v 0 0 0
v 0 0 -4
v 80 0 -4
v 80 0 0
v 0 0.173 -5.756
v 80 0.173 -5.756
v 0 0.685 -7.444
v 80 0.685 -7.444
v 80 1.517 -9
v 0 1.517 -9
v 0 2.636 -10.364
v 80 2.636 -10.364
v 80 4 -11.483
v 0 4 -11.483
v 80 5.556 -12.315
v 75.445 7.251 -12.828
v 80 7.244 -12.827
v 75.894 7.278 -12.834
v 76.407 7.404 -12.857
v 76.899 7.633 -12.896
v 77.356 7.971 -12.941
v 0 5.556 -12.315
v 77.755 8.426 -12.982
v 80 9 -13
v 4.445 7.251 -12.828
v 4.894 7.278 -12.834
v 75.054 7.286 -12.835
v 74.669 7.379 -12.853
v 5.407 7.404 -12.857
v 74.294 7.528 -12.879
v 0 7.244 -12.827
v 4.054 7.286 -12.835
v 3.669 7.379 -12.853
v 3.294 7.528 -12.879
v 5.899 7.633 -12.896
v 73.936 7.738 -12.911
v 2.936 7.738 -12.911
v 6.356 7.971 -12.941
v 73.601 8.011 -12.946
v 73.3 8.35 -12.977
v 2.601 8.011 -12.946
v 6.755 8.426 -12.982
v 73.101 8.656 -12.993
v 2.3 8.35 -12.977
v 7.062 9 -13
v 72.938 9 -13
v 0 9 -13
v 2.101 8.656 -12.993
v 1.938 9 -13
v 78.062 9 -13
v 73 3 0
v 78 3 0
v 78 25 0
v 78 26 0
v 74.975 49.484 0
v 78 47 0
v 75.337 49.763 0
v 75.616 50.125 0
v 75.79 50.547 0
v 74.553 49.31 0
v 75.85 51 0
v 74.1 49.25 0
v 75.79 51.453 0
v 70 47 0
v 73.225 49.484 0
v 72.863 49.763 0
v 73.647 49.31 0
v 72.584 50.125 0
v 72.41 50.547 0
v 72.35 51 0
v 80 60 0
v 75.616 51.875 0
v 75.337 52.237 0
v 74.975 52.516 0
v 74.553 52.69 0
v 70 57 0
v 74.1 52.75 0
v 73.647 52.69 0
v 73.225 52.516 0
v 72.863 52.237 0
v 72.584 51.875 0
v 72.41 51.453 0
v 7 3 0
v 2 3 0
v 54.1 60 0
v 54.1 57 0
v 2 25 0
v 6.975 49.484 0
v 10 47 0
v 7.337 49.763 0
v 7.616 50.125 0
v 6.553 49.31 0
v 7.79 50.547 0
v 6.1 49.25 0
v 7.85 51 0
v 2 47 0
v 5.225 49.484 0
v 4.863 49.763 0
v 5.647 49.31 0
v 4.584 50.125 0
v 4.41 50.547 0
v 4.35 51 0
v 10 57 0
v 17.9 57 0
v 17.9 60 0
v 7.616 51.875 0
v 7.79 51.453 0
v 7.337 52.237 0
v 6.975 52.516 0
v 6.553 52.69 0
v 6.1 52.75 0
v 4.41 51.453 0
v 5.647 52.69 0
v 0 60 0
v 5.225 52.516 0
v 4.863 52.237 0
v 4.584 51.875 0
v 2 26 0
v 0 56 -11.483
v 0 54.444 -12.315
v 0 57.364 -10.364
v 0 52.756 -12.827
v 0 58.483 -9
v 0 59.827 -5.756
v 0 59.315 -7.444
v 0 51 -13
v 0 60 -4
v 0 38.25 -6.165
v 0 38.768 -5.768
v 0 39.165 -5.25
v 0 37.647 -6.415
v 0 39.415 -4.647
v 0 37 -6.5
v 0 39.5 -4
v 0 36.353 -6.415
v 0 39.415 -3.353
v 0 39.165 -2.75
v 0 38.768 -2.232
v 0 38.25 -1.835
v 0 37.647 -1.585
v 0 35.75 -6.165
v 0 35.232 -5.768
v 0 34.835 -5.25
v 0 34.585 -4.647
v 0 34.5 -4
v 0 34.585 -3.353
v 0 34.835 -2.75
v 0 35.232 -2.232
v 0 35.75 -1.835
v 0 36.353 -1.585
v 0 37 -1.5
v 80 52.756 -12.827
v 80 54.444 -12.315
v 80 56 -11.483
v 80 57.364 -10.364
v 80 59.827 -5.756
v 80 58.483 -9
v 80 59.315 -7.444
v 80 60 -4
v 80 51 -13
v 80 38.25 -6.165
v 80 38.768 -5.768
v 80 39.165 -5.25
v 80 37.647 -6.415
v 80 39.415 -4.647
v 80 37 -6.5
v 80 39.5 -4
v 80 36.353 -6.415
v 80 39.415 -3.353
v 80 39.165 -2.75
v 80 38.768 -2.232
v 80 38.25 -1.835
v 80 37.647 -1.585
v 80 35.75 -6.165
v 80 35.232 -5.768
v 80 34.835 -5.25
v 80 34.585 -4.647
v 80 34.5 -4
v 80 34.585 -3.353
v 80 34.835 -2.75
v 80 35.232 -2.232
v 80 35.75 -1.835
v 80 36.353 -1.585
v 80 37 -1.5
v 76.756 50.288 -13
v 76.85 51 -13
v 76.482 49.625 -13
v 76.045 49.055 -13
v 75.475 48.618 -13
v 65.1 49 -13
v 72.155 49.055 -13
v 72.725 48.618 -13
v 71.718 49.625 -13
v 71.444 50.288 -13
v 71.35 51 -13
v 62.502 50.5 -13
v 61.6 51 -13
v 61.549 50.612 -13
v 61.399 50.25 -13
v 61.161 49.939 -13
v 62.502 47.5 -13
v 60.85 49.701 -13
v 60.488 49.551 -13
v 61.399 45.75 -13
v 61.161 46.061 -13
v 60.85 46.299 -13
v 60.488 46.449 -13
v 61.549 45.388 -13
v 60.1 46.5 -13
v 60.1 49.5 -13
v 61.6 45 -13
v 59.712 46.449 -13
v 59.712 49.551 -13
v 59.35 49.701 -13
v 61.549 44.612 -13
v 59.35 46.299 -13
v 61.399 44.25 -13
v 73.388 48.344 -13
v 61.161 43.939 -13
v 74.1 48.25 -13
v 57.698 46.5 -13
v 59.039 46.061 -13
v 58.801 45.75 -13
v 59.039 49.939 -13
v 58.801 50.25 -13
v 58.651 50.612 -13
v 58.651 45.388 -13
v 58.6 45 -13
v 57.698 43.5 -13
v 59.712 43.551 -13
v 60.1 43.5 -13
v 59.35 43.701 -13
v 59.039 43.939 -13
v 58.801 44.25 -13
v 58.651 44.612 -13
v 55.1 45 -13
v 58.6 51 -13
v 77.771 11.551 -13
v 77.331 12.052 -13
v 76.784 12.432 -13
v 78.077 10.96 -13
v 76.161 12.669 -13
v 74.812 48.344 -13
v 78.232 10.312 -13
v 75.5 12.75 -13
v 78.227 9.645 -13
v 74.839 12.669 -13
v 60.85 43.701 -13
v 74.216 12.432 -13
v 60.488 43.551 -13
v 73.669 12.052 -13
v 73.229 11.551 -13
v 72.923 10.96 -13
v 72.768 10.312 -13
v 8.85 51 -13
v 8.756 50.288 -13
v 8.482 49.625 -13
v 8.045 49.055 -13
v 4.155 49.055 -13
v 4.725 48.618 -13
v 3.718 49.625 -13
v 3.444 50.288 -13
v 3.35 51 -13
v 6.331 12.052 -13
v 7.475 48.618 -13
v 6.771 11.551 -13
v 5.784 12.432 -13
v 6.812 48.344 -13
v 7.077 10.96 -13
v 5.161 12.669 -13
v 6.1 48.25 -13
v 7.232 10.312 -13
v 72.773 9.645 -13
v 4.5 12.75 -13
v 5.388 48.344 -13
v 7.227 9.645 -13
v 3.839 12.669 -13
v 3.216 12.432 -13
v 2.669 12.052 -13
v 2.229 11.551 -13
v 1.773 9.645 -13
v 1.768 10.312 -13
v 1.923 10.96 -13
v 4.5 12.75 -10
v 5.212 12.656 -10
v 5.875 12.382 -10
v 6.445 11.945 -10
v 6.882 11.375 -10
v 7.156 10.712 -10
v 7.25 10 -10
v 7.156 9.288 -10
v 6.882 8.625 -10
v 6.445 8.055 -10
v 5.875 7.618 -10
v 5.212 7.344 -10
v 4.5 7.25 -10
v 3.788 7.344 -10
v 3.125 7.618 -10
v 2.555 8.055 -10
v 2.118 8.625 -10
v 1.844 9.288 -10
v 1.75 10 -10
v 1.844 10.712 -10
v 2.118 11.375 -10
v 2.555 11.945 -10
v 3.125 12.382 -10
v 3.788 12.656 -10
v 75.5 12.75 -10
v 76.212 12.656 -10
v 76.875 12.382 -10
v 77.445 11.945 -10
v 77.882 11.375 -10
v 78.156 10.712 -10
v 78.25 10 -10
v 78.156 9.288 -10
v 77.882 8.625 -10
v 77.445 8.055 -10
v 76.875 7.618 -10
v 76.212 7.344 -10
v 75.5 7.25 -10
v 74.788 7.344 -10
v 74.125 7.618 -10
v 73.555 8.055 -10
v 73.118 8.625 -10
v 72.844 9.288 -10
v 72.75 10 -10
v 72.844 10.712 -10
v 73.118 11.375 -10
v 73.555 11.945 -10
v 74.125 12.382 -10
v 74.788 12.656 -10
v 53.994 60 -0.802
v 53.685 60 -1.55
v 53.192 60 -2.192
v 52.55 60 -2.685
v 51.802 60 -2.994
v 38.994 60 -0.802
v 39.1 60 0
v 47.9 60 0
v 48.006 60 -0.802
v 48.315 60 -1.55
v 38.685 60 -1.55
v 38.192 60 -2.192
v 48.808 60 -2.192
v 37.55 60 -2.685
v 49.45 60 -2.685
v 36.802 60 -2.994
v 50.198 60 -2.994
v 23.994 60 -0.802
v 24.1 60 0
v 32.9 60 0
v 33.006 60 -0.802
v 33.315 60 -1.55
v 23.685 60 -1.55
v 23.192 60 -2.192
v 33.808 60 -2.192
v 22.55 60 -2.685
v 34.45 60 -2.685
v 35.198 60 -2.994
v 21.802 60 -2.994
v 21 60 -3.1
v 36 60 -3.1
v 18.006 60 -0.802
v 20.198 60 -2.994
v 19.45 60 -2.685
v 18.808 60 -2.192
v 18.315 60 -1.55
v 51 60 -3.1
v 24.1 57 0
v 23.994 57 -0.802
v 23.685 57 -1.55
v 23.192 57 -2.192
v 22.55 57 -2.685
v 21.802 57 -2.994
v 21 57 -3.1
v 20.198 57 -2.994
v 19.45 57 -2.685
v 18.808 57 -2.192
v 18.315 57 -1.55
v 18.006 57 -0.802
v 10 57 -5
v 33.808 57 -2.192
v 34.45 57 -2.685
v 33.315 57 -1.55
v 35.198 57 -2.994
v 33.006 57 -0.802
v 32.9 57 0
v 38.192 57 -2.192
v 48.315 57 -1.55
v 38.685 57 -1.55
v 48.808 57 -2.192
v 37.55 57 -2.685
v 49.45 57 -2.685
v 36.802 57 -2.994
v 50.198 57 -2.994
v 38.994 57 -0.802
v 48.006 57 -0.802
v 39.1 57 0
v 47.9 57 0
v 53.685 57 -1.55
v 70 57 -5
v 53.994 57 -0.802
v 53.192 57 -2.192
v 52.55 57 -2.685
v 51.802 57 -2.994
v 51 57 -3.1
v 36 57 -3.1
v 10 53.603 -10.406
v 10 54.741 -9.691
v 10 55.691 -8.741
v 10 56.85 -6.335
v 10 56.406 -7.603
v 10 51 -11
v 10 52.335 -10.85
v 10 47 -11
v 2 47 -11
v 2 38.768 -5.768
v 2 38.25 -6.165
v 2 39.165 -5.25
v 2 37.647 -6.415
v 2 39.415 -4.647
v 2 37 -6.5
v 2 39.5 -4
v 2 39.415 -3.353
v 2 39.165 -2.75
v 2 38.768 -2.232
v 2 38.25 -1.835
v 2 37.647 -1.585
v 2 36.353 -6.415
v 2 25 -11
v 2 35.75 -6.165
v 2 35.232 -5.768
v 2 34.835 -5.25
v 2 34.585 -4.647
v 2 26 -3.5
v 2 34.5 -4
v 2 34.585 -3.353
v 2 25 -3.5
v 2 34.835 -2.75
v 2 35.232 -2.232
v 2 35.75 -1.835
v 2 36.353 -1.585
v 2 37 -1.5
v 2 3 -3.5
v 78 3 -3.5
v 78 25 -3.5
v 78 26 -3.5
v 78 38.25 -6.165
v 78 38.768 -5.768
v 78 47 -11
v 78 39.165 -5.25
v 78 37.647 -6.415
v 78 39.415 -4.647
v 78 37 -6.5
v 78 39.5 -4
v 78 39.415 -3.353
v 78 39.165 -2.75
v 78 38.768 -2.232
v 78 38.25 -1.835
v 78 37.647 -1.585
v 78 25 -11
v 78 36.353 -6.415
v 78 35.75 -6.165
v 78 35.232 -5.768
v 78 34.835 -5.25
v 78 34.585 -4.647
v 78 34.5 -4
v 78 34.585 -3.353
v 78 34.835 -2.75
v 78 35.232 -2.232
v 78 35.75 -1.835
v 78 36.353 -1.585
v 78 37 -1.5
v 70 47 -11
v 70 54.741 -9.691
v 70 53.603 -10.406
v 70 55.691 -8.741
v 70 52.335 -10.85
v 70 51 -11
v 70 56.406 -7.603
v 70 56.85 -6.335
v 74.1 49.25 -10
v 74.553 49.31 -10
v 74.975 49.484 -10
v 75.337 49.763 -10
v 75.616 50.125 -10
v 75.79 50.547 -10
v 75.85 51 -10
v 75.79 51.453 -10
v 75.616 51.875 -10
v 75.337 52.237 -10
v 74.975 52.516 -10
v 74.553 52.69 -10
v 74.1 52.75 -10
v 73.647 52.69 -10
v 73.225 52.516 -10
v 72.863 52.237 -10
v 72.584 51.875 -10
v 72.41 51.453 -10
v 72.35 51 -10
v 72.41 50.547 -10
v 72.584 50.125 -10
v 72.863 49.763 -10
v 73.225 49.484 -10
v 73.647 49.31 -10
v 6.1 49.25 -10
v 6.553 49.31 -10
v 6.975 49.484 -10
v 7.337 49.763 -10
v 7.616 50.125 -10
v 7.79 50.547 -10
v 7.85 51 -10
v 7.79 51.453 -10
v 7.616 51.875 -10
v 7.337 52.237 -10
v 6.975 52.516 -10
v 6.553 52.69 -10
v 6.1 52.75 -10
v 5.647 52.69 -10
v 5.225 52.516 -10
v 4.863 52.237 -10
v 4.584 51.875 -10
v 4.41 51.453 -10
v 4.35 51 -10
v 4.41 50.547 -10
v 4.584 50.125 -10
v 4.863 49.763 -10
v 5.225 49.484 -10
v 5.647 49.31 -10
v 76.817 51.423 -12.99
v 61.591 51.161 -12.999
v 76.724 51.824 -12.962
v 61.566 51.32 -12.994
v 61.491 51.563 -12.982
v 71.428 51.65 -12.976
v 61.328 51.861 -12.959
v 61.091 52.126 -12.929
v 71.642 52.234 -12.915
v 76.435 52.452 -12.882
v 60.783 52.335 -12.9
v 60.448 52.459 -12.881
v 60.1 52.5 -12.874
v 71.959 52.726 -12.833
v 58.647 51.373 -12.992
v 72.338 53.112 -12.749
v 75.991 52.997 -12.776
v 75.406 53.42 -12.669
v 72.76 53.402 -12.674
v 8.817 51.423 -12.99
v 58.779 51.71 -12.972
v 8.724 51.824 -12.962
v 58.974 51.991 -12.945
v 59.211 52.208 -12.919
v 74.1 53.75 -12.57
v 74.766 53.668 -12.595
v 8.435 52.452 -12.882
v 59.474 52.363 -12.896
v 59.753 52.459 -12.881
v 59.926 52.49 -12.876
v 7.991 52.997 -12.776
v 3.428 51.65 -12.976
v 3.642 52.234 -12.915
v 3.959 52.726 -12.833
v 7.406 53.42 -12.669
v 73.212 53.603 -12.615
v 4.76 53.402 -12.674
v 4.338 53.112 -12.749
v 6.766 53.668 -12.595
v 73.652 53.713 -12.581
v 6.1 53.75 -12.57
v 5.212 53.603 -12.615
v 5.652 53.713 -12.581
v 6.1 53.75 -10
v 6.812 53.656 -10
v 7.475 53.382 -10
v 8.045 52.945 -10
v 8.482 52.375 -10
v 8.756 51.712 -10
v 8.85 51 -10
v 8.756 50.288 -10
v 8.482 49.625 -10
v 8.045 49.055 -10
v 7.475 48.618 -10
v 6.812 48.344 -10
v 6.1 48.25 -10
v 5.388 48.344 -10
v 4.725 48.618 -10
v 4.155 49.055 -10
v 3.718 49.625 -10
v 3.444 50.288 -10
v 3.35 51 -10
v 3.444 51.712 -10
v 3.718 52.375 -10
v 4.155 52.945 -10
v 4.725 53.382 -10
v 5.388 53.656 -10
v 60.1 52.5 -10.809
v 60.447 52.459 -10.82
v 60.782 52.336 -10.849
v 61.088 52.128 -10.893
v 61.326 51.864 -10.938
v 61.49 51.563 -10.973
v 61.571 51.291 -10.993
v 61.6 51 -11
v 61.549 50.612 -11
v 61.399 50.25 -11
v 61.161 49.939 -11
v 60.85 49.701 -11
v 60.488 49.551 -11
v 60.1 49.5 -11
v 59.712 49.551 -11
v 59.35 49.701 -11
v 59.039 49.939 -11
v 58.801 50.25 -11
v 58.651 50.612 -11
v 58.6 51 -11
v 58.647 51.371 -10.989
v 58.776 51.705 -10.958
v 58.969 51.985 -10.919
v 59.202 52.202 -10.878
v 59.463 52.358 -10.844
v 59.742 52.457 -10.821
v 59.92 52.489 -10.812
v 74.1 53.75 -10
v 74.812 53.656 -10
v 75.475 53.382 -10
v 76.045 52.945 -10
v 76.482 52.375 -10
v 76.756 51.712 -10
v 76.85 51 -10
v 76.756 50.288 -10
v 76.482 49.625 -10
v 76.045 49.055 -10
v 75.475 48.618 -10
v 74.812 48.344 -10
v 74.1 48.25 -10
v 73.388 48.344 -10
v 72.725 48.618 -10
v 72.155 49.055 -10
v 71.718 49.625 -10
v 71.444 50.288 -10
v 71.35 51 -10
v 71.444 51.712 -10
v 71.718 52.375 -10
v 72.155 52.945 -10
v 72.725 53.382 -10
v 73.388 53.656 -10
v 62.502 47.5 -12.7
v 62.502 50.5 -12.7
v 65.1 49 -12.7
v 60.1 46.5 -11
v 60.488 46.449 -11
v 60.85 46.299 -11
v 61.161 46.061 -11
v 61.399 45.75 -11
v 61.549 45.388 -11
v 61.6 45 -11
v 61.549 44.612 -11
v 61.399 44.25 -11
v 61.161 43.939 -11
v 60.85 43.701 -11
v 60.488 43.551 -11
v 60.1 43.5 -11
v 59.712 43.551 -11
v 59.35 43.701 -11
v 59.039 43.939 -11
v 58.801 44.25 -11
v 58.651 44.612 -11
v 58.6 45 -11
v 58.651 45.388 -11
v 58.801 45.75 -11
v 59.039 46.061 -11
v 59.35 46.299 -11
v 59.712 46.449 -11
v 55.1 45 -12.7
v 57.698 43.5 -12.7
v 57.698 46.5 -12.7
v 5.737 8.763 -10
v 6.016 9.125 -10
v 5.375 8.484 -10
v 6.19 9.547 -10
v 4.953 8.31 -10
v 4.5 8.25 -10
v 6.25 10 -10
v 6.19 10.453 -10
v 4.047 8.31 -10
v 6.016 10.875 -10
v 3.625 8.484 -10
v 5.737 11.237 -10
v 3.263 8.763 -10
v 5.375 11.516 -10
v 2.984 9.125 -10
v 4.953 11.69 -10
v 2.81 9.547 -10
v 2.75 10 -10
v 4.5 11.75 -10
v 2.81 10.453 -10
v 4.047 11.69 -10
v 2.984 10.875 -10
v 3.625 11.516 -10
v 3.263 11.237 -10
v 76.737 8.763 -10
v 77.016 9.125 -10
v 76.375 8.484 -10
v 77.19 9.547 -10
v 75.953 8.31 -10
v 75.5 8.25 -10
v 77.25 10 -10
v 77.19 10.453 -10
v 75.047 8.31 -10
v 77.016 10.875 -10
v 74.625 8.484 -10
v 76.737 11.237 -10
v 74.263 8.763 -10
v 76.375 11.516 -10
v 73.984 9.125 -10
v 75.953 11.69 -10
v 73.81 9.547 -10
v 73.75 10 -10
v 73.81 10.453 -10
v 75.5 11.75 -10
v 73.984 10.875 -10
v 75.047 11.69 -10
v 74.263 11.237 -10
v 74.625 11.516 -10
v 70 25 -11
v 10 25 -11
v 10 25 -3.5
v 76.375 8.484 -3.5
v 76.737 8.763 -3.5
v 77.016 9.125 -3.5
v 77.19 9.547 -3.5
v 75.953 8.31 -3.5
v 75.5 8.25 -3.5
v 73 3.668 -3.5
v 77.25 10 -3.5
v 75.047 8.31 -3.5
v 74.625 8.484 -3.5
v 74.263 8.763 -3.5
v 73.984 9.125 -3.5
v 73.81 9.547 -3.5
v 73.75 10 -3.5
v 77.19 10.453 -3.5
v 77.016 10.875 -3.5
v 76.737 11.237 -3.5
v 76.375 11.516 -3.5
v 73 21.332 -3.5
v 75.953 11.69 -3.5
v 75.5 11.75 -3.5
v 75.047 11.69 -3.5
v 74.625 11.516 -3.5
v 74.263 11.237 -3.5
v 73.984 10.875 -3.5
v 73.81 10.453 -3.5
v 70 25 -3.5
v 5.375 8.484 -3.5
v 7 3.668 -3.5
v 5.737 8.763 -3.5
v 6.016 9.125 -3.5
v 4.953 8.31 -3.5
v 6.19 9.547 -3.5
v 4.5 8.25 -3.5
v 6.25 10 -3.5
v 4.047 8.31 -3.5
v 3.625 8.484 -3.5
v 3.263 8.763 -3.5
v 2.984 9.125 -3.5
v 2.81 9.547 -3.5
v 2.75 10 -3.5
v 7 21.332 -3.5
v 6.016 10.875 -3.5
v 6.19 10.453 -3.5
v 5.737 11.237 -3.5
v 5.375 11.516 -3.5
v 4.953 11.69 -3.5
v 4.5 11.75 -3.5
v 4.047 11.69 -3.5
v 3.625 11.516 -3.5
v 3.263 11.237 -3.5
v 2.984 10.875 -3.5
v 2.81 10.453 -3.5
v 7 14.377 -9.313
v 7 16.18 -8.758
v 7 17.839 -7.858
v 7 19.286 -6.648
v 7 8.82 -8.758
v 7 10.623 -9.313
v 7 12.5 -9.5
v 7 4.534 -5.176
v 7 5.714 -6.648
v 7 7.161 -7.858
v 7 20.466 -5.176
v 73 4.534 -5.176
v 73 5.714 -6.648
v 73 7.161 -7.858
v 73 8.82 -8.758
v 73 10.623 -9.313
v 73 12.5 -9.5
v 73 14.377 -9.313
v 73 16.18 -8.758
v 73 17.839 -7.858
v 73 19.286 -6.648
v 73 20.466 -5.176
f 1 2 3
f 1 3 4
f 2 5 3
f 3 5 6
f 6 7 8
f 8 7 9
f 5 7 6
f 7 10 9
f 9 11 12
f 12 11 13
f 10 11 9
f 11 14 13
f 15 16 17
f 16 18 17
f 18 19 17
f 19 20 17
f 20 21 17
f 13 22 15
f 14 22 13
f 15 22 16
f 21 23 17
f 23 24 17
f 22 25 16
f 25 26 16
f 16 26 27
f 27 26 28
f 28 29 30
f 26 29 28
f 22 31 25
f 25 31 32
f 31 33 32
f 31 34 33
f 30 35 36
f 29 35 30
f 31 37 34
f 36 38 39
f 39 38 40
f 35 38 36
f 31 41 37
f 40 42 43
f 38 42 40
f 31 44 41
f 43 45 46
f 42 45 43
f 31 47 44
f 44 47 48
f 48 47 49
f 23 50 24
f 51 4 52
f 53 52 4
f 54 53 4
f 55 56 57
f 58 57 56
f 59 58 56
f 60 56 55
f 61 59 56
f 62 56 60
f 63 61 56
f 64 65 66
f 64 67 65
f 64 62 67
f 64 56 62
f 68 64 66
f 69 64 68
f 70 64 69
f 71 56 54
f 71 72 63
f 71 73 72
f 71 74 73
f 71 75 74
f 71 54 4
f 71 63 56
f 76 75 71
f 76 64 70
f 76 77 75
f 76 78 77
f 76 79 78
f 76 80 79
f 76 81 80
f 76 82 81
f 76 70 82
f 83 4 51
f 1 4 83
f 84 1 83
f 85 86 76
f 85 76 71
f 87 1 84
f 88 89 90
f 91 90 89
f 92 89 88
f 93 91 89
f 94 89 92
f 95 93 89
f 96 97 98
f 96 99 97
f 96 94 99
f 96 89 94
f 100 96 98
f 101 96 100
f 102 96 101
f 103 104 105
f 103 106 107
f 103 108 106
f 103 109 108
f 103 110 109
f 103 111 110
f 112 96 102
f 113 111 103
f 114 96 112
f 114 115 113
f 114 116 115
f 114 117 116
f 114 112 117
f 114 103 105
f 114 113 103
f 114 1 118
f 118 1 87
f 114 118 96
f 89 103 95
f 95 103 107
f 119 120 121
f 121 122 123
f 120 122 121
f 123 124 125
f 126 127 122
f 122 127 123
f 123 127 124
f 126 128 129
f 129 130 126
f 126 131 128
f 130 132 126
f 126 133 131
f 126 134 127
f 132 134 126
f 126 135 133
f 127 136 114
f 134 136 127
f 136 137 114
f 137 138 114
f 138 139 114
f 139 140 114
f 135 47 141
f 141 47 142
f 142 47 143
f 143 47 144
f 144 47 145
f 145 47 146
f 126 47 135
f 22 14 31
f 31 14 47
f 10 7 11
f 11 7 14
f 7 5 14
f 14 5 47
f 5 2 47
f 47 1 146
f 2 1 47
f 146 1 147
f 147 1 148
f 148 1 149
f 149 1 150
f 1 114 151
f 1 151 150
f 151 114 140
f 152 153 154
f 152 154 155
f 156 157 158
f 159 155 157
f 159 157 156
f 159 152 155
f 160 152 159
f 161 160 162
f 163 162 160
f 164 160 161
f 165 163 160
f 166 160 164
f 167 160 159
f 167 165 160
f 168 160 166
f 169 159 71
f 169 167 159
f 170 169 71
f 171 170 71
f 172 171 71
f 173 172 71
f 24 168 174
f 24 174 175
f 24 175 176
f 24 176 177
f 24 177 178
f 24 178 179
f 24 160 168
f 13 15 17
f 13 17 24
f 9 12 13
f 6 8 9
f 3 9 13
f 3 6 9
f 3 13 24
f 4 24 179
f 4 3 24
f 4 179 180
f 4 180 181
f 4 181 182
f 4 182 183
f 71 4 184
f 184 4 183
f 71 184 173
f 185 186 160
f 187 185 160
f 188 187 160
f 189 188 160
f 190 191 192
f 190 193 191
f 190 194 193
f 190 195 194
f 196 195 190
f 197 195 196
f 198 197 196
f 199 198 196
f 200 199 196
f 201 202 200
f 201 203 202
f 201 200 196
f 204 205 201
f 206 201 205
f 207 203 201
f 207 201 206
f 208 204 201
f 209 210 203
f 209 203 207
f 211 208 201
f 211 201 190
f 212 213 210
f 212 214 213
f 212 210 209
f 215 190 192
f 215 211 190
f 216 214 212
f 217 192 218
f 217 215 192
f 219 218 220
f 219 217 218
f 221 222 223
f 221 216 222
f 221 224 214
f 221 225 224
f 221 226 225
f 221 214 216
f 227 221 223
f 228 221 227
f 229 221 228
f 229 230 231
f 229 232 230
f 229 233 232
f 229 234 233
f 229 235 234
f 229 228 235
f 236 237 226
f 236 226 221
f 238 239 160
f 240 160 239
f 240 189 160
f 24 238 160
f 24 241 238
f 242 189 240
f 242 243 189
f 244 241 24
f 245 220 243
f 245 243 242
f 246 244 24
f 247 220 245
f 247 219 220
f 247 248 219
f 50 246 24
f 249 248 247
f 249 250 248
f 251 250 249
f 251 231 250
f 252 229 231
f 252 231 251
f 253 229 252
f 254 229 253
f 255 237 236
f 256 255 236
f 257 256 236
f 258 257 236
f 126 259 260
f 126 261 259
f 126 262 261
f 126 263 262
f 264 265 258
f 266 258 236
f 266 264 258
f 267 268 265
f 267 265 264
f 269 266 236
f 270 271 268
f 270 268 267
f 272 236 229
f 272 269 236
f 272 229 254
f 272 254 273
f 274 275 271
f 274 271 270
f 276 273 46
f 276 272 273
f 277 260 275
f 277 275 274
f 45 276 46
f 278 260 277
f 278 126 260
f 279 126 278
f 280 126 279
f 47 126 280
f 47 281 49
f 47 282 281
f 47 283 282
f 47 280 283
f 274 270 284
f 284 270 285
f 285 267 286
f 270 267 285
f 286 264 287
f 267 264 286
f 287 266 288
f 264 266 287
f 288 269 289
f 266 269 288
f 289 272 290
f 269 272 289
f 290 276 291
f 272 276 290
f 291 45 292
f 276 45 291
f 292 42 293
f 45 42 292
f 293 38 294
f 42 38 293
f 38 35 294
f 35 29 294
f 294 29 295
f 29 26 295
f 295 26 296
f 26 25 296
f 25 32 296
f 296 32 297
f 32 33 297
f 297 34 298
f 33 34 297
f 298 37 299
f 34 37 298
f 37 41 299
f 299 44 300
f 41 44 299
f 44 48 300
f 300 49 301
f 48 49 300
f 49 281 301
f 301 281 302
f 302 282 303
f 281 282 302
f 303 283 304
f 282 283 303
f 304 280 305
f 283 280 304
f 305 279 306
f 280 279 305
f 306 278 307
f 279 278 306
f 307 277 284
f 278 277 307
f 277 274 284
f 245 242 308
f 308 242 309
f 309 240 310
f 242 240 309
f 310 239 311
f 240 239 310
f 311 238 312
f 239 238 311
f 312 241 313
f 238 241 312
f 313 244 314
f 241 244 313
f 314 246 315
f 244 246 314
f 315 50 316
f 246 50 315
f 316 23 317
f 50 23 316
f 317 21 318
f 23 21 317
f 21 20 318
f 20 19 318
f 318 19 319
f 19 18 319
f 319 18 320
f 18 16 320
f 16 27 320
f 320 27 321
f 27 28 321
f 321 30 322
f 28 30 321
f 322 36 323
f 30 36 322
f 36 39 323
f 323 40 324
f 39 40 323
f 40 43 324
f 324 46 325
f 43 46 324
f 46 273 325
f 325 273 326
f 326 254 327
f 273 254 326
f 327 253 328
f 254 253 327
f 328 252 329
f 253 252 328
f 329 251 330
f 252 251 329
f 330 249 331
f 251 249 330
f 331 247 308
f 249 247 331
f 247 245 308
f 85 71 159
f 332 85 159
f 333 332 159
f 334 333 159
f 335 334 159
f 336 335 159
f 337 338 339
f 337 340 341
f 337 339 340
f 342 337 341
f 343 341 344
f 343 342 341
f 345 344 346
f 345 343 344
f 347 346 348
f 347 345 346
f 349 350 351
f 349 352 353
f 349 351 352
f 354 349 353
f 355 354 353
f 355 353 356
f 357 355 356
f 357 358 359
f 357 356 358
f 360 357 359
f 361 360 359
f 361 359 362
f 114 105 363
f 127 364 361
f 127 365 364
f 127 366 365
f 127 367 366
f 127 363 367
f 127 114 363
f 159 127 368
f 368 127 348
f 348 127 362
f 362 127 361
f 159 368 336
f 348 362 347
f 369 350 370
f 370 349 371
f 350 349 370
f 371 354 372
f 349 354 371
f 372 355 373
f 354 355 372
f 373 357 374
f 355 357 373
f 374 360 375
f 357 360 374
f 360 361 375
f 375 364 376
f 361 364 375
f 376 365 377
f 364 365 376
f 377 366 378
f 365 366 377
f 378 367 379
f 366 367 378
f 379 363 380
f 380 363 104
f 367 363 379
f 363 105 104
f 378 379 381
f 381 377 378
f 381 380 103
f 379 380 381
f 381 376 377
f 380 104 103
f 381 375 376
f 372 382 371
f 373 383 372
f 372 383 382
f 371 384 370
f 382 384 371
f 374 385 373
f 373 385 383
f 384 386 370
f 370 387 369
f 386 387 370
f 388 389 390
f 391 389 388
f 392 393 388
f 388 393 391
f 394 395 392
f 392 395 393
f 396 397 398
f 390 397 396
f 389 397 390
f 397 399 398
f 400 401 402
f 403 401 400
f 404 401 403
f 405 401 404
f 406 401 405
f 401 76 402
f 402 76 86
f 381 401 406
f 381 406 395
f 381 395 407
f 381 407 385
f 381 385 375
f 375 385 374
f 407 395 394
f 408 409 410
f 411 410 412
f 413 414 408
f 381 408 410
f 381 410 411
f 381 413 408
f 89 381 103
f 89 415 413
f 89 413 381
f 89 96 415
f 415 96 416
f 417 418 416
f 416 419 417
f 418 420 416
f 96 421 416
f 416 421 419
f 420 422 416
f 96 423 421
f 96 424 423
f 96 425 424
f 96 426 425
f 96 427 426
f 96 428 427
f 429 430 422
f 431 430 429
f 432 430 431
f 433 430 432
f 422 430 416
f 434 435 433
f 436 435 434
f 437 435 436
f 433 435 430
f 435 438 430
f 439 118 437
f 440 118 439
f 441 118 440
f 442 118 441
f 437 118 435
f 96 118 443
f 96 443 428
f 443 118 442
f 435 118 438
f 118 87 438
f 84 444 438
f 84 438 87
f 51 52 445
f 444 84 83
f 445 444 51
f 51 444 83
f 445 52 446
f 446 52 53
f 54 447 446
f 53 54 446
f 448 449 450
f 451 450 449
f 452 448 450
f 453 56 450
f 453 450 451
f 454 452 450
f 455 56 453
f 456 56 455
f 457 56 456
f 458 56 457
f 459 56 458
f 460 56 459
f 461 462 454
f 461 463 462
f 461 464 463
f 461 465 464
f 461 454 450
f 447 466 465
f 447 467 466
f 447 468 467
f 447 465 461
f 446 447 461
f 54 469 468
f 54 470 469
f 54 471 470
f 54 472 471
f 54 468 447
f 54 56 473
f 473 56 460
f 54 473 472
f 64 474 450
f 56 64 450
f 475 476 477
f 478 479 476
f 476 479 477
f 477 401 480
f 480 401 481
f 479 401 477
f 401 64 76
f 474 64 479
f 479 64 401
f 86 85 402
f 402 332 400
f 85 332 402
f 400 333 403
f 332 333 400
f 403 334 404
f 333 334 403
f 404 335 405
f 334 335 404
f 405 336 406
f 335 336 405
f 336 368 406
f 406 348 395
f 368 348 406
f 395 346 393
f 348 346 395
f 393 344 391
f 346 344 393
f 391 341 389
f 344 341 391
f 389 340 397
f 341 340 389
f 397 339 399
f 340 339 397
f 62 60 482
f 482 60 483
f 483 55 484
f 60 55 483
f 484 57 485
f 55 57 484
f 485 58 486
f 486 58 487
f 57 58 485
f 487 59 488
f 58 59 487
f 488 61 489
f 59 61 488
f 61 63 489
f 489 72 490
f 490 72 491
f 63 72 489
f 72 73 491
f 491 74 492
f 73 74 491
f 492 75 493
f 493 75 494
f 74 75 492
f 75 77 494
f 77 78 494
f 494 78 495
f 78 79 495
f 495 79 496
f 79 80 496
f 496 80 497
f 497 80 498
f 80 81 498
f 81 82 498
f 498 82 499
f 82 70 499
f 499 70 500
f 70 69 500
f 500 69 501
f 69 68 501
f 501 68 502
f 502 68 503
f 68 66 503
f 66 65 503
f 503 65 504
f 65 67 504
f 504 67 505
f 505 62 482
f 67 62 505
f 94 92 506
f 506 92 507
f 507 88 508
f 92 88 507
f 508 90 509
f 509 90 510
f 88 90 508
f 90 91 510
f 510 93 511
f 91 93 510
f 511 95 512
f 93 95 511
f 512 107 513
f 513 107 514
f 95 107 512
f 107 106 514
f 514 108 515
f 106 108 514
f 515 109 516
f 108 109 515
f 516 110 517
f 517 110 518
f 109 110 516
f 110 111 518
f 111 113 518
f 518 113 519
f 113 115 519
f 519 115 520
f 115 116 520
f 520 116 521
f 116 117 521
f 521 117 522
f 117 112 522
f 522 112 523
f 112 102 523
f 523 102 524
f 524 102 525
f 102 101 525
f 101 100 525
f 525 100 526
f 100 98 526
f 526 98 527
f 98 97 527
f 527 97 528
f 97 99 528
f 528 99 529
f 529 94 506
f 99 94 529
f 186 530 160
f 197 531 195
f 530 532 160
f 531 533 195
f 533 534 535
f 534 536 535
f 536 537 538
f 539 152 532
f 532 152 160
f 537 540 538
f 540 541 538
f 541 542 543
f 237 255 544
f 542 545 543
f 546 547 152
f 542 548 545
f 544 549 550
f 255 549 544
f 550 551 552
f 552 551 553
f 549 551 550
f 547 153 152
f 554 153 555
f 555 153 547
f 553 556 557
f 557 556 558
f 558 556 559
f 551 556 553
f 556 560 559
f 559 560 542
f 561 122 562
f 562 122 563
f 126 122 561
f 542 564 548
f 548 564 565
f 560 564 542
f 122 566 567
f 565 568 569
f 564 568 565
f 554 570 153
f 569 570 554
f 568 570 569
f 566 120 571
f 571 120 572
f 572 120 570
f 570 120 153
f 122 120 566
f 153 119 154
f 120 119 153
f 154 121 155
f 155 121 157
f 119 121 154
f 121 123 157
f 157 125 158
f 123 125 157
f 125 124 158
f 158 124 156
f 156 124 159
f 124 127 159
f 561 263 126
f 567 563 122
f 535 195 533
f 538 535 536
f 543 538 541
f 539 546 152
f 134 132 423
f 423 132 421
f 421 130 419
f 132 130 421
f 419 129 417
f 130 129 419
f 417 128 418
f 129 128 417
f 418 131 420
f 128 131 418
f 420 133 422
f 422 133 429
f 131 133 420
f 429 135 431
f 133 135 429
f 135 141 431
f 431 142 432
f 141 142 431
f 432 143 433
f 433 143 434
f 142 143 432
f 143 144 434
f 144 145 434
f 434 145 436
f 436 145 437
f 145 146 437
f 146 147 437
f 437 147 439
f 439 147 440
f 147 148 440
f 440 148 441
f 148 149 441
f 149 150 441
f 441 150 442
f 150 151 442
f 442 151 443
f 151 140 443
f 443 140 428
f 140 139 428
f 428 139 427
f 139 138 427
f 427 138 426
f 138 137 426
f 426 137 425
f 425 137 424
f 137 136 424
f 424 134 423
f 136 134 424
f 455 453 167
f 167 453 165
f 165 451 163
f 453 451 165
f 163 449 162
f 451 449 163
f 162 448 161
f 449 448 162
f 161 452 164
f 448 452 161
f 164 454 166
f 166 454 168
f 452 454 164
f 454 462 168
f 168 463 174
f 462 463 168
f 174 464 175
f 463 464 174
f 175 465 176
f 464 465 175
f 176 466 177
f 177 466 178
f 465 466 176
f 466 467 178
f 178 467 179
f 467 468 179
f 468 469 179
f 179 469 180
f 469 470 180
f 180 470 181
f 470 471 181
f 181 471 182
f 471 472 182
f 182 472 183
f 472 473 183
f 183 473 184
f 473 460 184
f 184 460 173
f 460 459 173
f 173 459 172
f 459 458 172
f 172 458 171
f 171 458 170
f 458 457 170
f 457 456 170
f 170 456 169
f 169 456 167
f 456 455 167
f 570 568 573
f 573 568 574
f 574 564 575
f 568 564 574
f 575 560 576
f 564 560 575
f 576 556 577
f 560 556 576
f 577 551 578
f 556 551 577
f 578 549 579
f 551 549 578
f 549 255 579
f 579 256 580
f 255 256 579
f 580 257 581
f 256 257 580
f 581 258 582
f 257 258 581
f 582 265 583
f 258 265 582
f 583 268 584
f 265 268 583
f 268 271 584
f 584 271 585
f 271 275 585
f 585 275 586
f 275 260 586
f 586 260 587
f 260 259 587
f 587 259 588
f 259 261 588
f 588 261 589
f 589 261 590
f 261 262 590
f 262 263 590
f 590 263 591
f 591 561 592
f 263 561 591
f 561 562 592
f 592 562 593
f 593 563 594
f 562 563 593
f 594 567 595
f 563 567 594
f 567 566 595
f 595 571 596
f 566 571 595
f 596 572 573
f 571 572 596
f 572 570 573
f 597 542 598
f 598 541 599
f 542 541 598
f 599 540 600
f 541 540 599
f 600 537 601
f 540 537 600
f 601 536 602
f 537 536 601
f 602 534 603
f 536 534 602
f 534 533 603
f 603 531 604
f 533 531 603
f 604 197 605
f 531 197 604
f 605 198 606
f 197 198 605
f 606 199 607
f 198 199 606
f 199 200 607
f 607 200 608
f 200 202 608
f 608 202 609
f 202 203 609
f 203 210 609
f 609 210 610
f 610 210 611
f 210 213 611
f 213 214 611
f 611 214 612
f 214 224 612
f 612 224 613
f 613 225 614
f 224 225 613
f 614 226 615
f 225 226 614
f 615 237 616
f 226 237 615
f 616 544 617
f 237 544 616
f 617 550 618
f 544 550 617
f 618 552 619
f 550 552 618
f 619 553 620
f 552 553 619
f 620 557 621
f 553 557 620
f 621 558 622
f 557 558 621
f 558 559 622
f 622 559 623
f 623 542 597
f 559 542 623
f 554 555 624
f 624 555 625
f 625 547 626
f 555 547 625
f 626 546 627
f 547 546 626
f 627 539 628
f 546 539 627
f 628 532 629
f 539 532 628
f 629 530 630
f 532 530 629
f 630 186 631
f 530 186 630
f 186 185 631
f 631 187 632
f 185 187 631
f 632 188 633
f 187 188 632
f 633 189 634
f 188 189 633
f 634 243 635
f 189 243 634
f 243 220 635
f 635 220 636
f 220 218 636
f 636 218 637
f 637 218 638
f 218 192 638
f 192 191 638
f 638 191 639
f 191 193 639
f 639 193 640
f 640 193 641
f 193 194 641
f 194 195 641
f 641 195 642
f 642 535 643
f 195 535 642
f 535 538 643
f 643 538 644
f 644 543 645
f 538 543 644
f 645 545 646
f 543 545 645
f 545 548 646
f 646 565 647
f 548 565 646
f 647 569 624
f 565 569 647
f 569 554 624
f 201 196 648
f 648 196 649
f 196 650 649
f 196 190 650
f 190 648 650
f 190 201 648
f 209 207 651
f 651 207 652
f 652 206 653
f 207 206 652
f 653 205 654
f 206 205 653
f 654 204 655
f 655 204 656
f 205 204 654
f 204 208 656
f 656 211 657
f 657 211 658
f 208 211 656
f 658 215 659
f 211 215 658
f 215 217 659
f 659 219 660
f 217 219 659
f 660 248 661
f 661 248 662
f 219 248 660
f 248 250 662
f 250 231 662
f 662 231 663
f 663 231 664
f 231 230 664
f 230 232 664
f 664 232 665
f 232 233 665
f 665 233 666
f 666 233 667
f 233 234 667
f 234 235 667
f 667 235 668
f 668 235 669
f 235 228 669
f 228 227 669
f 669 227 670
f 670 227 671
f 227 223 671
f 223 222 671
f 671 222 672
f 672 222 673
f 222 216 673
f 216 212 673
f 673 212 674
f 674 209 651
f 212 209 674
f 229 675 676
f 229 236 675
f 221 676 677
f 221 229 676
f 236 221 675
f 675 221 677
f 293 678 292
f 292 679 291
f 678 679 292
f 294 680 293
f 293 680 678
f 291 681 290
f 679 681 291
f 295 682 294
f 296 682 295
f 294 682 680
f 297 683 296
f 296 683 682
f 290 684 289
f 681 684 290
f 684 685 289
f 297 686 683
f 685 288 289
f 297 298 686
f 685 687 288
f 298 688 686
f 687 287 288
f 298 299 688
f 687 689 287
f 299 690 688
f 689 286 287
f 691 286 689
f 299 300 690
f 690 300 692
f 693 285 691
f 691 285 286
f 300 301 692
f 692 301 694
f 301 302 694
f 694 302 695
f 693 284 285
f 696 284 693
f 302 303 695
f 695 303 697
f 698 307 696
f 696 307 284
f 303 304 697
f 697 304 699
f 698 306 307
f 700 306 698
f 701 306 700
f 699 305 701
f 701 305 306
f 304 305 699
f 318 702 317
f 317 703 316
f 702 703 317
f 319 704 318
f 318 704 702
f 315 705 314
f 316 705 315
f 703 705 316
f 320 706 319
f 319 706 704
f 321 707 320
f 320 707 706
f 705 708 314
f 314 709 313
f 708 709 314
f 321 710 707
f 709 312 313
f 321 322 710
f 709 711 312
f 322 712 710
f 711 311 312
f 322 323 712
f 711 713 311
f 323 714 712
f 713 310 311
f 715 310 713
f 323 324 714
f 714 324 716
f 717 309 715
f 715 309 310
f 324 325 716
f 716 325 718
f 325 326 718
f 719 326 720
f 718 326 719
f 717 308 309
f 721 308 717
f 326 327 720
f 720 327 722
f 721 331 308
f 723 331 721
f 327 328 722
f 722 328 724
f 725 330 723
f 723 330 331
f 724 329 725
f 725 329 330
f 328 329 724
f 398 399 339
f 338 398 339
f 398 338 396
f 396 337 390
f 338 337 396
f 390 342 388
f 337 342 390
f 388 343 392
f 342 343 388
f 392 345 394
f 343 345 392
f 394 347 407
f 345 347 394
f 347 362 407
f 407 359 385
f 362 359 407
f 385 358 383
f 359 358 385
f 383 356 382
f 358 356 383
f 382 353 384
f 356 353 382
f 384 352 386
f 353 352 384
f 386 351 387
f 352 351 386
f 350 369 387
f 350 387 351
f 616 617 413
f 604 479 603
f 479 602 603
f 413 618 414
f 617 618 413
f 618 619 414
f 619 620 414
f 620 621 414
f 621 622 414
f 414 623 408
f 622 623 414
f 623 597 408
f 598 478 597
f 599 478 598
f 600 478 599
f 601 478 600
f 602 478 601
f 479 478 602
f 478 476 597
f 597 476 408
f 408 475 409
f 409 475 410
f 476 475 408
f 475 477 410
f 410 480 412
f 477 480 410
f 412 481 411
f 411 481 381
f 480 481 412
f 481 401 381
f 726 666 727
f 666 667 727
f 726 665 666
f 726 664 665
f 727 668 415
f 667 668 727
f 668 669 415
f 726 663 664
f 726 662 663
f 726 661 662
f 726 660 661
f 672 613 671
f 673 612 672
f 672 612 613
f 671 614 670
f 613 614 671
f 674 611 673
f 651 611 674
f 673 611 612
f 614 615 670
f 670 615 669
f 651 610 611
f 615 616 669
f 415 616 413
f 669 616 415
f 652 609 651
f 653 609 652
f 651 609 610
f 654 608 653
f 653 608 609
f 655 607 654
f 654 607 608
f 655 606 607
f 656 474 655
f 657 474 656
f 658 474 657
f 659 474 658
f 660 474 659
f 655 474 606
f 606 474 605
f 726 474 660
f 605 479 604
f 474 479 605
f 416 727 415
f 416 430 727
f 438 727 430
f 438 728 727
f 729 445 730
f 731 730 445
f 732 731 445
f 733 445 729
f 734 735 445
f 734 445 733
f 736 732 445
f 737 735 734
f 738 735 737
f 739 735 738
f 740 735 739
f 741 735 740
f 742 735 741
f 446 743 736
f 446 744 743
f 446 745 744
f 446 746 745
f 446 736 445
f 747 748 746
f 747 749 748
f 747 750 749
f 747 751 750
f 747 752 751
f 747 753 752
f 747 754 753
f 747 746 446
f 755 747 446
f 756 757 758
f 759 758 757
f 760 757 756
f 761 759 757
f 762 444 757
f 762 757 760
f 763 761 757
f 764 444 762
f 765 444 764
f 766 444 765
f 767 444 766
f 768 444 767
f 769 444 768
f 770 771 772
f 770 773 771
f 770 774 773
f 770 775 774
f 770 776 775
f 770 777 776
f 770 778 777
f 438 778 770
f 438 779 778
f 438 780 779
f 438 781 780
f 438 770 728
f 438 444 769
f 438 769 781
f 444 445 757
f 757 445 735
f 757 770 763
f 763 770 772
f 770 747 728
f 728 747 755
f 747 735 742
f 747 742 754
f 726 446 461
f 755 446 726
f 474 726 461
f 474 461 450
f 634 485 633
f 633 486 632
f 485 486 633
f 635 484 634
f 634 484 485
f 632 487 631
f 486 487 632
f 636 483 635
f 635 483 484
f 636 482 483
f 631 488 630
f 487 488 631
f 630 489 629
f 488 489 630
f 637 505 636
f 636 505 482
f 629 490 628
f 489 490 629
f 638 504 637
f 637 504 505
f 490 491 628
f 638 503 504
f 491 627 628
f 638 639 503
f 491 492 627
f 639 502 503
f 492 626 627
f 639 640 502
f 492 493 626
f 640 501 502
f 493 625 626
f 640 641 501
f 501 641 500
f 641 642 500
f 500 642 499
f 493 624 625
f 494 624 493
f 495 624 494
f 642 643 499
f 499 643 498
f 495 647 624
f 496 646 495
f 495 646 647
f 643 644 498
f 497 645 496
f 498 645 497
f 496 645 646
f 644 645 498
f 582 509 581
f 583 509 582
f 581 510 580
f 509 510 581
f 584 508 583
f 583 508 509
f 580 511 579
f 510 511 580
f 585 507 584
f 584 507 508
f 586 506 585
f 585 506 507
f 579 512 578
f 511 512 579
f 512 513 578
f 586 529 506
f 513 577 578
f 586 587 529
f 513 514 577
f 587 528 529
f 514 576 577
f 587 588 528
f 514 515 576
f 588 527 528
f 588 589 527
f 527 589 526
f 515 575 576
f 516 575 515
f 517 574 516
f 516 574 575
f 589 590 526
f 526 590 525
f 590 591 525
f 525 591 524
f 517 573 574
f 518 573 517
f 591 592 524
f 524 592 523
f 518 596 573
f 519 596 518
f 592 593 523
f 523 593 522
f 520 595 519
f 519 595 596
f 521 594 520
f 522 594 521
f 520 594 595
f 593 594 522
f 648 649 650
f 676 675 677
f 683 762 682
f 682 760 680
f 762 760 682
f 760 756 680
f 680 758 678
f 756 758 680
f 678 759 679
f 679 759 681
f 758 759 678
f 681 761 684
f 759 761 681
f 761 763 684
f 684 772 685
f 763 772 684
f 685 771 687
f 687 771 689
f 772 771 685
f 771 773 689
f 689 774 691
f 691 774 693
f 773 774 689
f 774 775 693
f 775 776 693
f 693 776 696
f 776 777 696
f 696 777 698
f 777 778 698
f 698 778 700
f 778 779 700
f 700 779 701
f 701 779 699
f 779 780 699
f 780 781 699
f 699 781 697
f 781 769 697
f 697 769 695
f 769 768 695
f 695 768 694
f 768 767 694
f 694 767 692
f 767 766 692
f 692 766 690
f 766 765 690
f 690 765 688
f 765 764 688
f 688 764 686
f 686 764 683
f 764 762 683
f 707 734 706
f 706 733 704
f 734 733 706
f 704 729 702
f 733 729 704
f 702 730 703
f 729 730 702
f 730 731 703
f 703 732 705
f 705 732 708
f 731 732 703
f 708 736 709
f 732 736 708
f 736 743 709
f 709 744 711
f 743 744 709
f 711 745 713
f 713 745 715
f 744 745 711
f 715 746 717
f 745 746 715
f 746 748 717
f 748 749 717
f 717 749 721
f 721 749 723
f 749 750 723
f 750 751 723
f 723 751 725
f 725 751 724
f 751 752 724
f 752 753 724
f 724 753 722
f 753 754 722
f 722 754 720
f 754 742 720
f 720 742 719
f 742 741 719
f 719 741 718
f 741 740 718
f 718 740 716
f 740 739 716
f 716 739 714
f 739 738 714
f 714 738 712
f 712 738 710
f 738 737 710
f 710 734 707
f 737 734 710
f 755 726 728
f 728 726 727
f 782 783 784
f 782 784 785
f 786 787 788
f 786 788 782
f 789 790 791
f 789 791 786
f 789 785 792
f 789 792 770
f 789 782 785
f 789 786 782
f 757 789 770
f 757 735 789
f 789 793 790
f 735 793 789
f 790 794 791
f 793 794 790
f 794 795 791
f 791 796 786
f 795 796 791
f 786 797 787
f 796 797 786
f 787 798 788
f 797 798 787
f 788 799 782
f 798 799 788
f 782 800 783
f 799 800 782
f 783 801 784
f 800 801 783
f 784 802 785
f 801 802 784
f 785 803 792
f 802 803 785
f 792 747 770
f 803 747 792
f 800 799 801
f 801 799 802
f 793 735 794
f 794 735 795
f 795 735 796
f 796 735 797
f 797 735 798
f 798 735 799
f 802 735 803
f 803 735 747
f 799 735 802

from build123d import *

# Parameters (mm, degrees)
PAD_DEPTH       = 80
POCKET_START    = -7
SKETCH001_R     = 9.5
POCKET_DEPTH    = 66
SKETCH007_R     = 3.1
POCKET005_DEPTH = 5
POCKET006_START = -10
POCKET006_DEPTH = 60
SKETCH009_R     = 1.75
POCKET007_DEPTH = 13.001
SKETCH010_W     = 22
SKETCH010_H     = 8
POCKET008_DEPTH = 11
SKETCH011_R     = 1.5
POCKET009_DEPTH = 5
SKETCH012_R     = 2.75
POCKET010_DEPTH = 3
SKETCH013_R     = 2.5
POCKET011_DEPTH = 80.001
POCKET012_START = -2
SKETCH014_W     = 23
SKETCH014_H     = 7
POCKET012_DEPTH = 76
POCKET013_DEPTH = 0.3
POCKET014_DEPTH = 0.3


with BuildPart() as part:
    # Sketch → Pad (new body)
    with BuildSketch(Plane.YZ):
        with BuildLine():
            Line((0, 0), (60, 0))
            Line((60, 0), (60, -4))
            ThreePointArc((51, -13), (57.363961, -10.363961), (60, -4))
            Line((51, -13), (9, -13))
            ThreePointArc((0, -4), (2.636039, -10.363961), (9, -13))
            Line((0, -4), (0, 0))
        make_face()
    extrude(amount=PAD_DEPTH)

    # Sketch001 (on Face8 of Pad) → Pocket (cut)
    with BuildSketch(Plane.YZ.offset(80).offset(POCKET_START)):
        with Locations((12.5, 0)):
            Circle(SKETCH001_R)
    extrude(amount=-POCKET_DEPTH, mode=Mode.SUBTRACT)

    # Sketch007 → Pocket005 (cut)
    with BuildSketch(Plane.ZX.offset(60)):
        with Locations((0, 51)):
            Circle(SKETCH007_R)
        with Locations((0, 36)):
            Circle(SKETCH007_R)
        with Locations((0, 21)):
            Circle(SKETCH007_R)
    extrude(amount=-POCKET005_DEPTH, mode=Mode.SUBTRACT)

    # Sketch008 (on Face5 of Pocket005) → Pocket006 (cut)
    with BuildSketch(Plane.YZ.offset(80).offset(POCKET006_START)):
        with BuildLine():
            Line((57, 0), (25, 0))
            Line((25, 0), (25, -11))
            Line((25, -11), (51, -11))
            ThreePointArc((51, -11), (55.242641, -9.242641), (57, -5))
            Line((57, -5), (57, 0))
        make_face()
    extrude(amount=-POCKET006_DEPTH, mode=Mode.SUBTRACT)

    # Sketch009 (on Face3 of Pocket006) → Pocket007 (cut, through all)
    with BuildSketch(Plane(origin=(0, 0, 0), x_dir=(0, -1, 0), z_dir=(0, 0, 1))):
        with Locations((-51, 74.1)):
            Circle(SKETCH009_R)
        with Locations((-10, 75.5)):
            Circle(SKETCH009_R)
        with Locations((-51, 6.1)):
            Circle(SKETCH009_R)
        with Locations((-10, 4.5)):
            Circle(SKETCH009_R)
    extrude(amount=-POCKET007_DEPTH, mode=Mode.SUBTRACT)

    # Sketch010 (on Face3 of Pocket007) → Pocket008 (cut)
    with BuildSketch(Plane(origin=(0, 0, 0), x_dir=(0, -1, 0), z_dir=(0, 0, 1))):
        with Locations((-36, 74)):
            Rectangle(SKETCH010_W, SKETCH010_H)
        with Locations((-36, 6)):
            Rectangle(SKETCH010_W, SKETCH010_H)
    extrude(amount=-POCKET008_DEPTH, mode=Mode.SUBTRACT)

    # Sketch011 (on Face6 of Pocket008) → Pocket009 (cut)
    with BuildSketch(Plane.YX.offset(13)):
        with Locations((51, 60.1)):
            Circle(SKETCH011_R)
        with Locations((45, 60.1)):
            Circle(SKETCH011_R)
    extrude(amount=-POCKET009_DEPTH, mode=Mode.SUBTRACT)

    # Sketch012 (on Face6 of Pocket009) → Pocket010 (cut)
    with BuildSketch(Plane.YX.offset(13)):
        with Locations((51, 6.1)):
            Circle(SKETCH012_R)
        with Locations((10, 4.5)):
            Circle(SKETCH012_R)
        with Locations((10, 75.5)):
            Circle(SKETCH012_R)
        with Locations((51, 74.1)):
            Circle(SKETCH012_R)
    extrude(amount=-POCKET010_DEPTH, mode=Mode.SUBTRACT)

    # Sketch013 (on Face4 of Pocket010) → Pocket011 (cut, through all)
    with BuildSketch(Plane(origin=(0, 0, 0), x_dir=(0, 1, 0), z_dir=(-1, 0, 0))):
        with Locations((37, 4)):
            Circle(SKETCH013_R)
    extrude(amount=-POCKET011_DEPTH, mode=Mode.SUBTRACT)

    # Sketch014 (on Face4 of Pocket011) → Pocket012 (cut)
    with BuildSketch(Plane(origin=(0, 0, 0), x_dir=(0, 1, 0), z_dir=(-1, 0, 0)).offset(POCKET012_START)):
        with Locations((14.5, 0)):
            Rectangle(SKETCH014_W, SKETCH014_H)
    extrude(amount=-POCKET012_DEPTH, mode=Mode.SUBTRACT)

    # Sketch015 (on Face6 of Pocket012) → Pocket013 (cut)
    with BuildSketch(Plane.YX.offset(13)):
        Polygon((43.5, 57.698076), (45, 55.1), (46.5, 57.698076), align=None)
    extrude(amount=-POCKET013_DEPTH, mode=Mode.SUBTRACT)

    # Sketch016 (on Face6 of Pocket013) → Pocket014 (cut)
    with BuildSketch(Plane.YX.offset(13)):
        Polygon((47.5, 62.501924), (50.5, 62.501924), (49, 65.1), align=None)
    extrude(amount=-POCKET014_DEPTH, mode=Mode.SUBTRACT)


solid = part.part
